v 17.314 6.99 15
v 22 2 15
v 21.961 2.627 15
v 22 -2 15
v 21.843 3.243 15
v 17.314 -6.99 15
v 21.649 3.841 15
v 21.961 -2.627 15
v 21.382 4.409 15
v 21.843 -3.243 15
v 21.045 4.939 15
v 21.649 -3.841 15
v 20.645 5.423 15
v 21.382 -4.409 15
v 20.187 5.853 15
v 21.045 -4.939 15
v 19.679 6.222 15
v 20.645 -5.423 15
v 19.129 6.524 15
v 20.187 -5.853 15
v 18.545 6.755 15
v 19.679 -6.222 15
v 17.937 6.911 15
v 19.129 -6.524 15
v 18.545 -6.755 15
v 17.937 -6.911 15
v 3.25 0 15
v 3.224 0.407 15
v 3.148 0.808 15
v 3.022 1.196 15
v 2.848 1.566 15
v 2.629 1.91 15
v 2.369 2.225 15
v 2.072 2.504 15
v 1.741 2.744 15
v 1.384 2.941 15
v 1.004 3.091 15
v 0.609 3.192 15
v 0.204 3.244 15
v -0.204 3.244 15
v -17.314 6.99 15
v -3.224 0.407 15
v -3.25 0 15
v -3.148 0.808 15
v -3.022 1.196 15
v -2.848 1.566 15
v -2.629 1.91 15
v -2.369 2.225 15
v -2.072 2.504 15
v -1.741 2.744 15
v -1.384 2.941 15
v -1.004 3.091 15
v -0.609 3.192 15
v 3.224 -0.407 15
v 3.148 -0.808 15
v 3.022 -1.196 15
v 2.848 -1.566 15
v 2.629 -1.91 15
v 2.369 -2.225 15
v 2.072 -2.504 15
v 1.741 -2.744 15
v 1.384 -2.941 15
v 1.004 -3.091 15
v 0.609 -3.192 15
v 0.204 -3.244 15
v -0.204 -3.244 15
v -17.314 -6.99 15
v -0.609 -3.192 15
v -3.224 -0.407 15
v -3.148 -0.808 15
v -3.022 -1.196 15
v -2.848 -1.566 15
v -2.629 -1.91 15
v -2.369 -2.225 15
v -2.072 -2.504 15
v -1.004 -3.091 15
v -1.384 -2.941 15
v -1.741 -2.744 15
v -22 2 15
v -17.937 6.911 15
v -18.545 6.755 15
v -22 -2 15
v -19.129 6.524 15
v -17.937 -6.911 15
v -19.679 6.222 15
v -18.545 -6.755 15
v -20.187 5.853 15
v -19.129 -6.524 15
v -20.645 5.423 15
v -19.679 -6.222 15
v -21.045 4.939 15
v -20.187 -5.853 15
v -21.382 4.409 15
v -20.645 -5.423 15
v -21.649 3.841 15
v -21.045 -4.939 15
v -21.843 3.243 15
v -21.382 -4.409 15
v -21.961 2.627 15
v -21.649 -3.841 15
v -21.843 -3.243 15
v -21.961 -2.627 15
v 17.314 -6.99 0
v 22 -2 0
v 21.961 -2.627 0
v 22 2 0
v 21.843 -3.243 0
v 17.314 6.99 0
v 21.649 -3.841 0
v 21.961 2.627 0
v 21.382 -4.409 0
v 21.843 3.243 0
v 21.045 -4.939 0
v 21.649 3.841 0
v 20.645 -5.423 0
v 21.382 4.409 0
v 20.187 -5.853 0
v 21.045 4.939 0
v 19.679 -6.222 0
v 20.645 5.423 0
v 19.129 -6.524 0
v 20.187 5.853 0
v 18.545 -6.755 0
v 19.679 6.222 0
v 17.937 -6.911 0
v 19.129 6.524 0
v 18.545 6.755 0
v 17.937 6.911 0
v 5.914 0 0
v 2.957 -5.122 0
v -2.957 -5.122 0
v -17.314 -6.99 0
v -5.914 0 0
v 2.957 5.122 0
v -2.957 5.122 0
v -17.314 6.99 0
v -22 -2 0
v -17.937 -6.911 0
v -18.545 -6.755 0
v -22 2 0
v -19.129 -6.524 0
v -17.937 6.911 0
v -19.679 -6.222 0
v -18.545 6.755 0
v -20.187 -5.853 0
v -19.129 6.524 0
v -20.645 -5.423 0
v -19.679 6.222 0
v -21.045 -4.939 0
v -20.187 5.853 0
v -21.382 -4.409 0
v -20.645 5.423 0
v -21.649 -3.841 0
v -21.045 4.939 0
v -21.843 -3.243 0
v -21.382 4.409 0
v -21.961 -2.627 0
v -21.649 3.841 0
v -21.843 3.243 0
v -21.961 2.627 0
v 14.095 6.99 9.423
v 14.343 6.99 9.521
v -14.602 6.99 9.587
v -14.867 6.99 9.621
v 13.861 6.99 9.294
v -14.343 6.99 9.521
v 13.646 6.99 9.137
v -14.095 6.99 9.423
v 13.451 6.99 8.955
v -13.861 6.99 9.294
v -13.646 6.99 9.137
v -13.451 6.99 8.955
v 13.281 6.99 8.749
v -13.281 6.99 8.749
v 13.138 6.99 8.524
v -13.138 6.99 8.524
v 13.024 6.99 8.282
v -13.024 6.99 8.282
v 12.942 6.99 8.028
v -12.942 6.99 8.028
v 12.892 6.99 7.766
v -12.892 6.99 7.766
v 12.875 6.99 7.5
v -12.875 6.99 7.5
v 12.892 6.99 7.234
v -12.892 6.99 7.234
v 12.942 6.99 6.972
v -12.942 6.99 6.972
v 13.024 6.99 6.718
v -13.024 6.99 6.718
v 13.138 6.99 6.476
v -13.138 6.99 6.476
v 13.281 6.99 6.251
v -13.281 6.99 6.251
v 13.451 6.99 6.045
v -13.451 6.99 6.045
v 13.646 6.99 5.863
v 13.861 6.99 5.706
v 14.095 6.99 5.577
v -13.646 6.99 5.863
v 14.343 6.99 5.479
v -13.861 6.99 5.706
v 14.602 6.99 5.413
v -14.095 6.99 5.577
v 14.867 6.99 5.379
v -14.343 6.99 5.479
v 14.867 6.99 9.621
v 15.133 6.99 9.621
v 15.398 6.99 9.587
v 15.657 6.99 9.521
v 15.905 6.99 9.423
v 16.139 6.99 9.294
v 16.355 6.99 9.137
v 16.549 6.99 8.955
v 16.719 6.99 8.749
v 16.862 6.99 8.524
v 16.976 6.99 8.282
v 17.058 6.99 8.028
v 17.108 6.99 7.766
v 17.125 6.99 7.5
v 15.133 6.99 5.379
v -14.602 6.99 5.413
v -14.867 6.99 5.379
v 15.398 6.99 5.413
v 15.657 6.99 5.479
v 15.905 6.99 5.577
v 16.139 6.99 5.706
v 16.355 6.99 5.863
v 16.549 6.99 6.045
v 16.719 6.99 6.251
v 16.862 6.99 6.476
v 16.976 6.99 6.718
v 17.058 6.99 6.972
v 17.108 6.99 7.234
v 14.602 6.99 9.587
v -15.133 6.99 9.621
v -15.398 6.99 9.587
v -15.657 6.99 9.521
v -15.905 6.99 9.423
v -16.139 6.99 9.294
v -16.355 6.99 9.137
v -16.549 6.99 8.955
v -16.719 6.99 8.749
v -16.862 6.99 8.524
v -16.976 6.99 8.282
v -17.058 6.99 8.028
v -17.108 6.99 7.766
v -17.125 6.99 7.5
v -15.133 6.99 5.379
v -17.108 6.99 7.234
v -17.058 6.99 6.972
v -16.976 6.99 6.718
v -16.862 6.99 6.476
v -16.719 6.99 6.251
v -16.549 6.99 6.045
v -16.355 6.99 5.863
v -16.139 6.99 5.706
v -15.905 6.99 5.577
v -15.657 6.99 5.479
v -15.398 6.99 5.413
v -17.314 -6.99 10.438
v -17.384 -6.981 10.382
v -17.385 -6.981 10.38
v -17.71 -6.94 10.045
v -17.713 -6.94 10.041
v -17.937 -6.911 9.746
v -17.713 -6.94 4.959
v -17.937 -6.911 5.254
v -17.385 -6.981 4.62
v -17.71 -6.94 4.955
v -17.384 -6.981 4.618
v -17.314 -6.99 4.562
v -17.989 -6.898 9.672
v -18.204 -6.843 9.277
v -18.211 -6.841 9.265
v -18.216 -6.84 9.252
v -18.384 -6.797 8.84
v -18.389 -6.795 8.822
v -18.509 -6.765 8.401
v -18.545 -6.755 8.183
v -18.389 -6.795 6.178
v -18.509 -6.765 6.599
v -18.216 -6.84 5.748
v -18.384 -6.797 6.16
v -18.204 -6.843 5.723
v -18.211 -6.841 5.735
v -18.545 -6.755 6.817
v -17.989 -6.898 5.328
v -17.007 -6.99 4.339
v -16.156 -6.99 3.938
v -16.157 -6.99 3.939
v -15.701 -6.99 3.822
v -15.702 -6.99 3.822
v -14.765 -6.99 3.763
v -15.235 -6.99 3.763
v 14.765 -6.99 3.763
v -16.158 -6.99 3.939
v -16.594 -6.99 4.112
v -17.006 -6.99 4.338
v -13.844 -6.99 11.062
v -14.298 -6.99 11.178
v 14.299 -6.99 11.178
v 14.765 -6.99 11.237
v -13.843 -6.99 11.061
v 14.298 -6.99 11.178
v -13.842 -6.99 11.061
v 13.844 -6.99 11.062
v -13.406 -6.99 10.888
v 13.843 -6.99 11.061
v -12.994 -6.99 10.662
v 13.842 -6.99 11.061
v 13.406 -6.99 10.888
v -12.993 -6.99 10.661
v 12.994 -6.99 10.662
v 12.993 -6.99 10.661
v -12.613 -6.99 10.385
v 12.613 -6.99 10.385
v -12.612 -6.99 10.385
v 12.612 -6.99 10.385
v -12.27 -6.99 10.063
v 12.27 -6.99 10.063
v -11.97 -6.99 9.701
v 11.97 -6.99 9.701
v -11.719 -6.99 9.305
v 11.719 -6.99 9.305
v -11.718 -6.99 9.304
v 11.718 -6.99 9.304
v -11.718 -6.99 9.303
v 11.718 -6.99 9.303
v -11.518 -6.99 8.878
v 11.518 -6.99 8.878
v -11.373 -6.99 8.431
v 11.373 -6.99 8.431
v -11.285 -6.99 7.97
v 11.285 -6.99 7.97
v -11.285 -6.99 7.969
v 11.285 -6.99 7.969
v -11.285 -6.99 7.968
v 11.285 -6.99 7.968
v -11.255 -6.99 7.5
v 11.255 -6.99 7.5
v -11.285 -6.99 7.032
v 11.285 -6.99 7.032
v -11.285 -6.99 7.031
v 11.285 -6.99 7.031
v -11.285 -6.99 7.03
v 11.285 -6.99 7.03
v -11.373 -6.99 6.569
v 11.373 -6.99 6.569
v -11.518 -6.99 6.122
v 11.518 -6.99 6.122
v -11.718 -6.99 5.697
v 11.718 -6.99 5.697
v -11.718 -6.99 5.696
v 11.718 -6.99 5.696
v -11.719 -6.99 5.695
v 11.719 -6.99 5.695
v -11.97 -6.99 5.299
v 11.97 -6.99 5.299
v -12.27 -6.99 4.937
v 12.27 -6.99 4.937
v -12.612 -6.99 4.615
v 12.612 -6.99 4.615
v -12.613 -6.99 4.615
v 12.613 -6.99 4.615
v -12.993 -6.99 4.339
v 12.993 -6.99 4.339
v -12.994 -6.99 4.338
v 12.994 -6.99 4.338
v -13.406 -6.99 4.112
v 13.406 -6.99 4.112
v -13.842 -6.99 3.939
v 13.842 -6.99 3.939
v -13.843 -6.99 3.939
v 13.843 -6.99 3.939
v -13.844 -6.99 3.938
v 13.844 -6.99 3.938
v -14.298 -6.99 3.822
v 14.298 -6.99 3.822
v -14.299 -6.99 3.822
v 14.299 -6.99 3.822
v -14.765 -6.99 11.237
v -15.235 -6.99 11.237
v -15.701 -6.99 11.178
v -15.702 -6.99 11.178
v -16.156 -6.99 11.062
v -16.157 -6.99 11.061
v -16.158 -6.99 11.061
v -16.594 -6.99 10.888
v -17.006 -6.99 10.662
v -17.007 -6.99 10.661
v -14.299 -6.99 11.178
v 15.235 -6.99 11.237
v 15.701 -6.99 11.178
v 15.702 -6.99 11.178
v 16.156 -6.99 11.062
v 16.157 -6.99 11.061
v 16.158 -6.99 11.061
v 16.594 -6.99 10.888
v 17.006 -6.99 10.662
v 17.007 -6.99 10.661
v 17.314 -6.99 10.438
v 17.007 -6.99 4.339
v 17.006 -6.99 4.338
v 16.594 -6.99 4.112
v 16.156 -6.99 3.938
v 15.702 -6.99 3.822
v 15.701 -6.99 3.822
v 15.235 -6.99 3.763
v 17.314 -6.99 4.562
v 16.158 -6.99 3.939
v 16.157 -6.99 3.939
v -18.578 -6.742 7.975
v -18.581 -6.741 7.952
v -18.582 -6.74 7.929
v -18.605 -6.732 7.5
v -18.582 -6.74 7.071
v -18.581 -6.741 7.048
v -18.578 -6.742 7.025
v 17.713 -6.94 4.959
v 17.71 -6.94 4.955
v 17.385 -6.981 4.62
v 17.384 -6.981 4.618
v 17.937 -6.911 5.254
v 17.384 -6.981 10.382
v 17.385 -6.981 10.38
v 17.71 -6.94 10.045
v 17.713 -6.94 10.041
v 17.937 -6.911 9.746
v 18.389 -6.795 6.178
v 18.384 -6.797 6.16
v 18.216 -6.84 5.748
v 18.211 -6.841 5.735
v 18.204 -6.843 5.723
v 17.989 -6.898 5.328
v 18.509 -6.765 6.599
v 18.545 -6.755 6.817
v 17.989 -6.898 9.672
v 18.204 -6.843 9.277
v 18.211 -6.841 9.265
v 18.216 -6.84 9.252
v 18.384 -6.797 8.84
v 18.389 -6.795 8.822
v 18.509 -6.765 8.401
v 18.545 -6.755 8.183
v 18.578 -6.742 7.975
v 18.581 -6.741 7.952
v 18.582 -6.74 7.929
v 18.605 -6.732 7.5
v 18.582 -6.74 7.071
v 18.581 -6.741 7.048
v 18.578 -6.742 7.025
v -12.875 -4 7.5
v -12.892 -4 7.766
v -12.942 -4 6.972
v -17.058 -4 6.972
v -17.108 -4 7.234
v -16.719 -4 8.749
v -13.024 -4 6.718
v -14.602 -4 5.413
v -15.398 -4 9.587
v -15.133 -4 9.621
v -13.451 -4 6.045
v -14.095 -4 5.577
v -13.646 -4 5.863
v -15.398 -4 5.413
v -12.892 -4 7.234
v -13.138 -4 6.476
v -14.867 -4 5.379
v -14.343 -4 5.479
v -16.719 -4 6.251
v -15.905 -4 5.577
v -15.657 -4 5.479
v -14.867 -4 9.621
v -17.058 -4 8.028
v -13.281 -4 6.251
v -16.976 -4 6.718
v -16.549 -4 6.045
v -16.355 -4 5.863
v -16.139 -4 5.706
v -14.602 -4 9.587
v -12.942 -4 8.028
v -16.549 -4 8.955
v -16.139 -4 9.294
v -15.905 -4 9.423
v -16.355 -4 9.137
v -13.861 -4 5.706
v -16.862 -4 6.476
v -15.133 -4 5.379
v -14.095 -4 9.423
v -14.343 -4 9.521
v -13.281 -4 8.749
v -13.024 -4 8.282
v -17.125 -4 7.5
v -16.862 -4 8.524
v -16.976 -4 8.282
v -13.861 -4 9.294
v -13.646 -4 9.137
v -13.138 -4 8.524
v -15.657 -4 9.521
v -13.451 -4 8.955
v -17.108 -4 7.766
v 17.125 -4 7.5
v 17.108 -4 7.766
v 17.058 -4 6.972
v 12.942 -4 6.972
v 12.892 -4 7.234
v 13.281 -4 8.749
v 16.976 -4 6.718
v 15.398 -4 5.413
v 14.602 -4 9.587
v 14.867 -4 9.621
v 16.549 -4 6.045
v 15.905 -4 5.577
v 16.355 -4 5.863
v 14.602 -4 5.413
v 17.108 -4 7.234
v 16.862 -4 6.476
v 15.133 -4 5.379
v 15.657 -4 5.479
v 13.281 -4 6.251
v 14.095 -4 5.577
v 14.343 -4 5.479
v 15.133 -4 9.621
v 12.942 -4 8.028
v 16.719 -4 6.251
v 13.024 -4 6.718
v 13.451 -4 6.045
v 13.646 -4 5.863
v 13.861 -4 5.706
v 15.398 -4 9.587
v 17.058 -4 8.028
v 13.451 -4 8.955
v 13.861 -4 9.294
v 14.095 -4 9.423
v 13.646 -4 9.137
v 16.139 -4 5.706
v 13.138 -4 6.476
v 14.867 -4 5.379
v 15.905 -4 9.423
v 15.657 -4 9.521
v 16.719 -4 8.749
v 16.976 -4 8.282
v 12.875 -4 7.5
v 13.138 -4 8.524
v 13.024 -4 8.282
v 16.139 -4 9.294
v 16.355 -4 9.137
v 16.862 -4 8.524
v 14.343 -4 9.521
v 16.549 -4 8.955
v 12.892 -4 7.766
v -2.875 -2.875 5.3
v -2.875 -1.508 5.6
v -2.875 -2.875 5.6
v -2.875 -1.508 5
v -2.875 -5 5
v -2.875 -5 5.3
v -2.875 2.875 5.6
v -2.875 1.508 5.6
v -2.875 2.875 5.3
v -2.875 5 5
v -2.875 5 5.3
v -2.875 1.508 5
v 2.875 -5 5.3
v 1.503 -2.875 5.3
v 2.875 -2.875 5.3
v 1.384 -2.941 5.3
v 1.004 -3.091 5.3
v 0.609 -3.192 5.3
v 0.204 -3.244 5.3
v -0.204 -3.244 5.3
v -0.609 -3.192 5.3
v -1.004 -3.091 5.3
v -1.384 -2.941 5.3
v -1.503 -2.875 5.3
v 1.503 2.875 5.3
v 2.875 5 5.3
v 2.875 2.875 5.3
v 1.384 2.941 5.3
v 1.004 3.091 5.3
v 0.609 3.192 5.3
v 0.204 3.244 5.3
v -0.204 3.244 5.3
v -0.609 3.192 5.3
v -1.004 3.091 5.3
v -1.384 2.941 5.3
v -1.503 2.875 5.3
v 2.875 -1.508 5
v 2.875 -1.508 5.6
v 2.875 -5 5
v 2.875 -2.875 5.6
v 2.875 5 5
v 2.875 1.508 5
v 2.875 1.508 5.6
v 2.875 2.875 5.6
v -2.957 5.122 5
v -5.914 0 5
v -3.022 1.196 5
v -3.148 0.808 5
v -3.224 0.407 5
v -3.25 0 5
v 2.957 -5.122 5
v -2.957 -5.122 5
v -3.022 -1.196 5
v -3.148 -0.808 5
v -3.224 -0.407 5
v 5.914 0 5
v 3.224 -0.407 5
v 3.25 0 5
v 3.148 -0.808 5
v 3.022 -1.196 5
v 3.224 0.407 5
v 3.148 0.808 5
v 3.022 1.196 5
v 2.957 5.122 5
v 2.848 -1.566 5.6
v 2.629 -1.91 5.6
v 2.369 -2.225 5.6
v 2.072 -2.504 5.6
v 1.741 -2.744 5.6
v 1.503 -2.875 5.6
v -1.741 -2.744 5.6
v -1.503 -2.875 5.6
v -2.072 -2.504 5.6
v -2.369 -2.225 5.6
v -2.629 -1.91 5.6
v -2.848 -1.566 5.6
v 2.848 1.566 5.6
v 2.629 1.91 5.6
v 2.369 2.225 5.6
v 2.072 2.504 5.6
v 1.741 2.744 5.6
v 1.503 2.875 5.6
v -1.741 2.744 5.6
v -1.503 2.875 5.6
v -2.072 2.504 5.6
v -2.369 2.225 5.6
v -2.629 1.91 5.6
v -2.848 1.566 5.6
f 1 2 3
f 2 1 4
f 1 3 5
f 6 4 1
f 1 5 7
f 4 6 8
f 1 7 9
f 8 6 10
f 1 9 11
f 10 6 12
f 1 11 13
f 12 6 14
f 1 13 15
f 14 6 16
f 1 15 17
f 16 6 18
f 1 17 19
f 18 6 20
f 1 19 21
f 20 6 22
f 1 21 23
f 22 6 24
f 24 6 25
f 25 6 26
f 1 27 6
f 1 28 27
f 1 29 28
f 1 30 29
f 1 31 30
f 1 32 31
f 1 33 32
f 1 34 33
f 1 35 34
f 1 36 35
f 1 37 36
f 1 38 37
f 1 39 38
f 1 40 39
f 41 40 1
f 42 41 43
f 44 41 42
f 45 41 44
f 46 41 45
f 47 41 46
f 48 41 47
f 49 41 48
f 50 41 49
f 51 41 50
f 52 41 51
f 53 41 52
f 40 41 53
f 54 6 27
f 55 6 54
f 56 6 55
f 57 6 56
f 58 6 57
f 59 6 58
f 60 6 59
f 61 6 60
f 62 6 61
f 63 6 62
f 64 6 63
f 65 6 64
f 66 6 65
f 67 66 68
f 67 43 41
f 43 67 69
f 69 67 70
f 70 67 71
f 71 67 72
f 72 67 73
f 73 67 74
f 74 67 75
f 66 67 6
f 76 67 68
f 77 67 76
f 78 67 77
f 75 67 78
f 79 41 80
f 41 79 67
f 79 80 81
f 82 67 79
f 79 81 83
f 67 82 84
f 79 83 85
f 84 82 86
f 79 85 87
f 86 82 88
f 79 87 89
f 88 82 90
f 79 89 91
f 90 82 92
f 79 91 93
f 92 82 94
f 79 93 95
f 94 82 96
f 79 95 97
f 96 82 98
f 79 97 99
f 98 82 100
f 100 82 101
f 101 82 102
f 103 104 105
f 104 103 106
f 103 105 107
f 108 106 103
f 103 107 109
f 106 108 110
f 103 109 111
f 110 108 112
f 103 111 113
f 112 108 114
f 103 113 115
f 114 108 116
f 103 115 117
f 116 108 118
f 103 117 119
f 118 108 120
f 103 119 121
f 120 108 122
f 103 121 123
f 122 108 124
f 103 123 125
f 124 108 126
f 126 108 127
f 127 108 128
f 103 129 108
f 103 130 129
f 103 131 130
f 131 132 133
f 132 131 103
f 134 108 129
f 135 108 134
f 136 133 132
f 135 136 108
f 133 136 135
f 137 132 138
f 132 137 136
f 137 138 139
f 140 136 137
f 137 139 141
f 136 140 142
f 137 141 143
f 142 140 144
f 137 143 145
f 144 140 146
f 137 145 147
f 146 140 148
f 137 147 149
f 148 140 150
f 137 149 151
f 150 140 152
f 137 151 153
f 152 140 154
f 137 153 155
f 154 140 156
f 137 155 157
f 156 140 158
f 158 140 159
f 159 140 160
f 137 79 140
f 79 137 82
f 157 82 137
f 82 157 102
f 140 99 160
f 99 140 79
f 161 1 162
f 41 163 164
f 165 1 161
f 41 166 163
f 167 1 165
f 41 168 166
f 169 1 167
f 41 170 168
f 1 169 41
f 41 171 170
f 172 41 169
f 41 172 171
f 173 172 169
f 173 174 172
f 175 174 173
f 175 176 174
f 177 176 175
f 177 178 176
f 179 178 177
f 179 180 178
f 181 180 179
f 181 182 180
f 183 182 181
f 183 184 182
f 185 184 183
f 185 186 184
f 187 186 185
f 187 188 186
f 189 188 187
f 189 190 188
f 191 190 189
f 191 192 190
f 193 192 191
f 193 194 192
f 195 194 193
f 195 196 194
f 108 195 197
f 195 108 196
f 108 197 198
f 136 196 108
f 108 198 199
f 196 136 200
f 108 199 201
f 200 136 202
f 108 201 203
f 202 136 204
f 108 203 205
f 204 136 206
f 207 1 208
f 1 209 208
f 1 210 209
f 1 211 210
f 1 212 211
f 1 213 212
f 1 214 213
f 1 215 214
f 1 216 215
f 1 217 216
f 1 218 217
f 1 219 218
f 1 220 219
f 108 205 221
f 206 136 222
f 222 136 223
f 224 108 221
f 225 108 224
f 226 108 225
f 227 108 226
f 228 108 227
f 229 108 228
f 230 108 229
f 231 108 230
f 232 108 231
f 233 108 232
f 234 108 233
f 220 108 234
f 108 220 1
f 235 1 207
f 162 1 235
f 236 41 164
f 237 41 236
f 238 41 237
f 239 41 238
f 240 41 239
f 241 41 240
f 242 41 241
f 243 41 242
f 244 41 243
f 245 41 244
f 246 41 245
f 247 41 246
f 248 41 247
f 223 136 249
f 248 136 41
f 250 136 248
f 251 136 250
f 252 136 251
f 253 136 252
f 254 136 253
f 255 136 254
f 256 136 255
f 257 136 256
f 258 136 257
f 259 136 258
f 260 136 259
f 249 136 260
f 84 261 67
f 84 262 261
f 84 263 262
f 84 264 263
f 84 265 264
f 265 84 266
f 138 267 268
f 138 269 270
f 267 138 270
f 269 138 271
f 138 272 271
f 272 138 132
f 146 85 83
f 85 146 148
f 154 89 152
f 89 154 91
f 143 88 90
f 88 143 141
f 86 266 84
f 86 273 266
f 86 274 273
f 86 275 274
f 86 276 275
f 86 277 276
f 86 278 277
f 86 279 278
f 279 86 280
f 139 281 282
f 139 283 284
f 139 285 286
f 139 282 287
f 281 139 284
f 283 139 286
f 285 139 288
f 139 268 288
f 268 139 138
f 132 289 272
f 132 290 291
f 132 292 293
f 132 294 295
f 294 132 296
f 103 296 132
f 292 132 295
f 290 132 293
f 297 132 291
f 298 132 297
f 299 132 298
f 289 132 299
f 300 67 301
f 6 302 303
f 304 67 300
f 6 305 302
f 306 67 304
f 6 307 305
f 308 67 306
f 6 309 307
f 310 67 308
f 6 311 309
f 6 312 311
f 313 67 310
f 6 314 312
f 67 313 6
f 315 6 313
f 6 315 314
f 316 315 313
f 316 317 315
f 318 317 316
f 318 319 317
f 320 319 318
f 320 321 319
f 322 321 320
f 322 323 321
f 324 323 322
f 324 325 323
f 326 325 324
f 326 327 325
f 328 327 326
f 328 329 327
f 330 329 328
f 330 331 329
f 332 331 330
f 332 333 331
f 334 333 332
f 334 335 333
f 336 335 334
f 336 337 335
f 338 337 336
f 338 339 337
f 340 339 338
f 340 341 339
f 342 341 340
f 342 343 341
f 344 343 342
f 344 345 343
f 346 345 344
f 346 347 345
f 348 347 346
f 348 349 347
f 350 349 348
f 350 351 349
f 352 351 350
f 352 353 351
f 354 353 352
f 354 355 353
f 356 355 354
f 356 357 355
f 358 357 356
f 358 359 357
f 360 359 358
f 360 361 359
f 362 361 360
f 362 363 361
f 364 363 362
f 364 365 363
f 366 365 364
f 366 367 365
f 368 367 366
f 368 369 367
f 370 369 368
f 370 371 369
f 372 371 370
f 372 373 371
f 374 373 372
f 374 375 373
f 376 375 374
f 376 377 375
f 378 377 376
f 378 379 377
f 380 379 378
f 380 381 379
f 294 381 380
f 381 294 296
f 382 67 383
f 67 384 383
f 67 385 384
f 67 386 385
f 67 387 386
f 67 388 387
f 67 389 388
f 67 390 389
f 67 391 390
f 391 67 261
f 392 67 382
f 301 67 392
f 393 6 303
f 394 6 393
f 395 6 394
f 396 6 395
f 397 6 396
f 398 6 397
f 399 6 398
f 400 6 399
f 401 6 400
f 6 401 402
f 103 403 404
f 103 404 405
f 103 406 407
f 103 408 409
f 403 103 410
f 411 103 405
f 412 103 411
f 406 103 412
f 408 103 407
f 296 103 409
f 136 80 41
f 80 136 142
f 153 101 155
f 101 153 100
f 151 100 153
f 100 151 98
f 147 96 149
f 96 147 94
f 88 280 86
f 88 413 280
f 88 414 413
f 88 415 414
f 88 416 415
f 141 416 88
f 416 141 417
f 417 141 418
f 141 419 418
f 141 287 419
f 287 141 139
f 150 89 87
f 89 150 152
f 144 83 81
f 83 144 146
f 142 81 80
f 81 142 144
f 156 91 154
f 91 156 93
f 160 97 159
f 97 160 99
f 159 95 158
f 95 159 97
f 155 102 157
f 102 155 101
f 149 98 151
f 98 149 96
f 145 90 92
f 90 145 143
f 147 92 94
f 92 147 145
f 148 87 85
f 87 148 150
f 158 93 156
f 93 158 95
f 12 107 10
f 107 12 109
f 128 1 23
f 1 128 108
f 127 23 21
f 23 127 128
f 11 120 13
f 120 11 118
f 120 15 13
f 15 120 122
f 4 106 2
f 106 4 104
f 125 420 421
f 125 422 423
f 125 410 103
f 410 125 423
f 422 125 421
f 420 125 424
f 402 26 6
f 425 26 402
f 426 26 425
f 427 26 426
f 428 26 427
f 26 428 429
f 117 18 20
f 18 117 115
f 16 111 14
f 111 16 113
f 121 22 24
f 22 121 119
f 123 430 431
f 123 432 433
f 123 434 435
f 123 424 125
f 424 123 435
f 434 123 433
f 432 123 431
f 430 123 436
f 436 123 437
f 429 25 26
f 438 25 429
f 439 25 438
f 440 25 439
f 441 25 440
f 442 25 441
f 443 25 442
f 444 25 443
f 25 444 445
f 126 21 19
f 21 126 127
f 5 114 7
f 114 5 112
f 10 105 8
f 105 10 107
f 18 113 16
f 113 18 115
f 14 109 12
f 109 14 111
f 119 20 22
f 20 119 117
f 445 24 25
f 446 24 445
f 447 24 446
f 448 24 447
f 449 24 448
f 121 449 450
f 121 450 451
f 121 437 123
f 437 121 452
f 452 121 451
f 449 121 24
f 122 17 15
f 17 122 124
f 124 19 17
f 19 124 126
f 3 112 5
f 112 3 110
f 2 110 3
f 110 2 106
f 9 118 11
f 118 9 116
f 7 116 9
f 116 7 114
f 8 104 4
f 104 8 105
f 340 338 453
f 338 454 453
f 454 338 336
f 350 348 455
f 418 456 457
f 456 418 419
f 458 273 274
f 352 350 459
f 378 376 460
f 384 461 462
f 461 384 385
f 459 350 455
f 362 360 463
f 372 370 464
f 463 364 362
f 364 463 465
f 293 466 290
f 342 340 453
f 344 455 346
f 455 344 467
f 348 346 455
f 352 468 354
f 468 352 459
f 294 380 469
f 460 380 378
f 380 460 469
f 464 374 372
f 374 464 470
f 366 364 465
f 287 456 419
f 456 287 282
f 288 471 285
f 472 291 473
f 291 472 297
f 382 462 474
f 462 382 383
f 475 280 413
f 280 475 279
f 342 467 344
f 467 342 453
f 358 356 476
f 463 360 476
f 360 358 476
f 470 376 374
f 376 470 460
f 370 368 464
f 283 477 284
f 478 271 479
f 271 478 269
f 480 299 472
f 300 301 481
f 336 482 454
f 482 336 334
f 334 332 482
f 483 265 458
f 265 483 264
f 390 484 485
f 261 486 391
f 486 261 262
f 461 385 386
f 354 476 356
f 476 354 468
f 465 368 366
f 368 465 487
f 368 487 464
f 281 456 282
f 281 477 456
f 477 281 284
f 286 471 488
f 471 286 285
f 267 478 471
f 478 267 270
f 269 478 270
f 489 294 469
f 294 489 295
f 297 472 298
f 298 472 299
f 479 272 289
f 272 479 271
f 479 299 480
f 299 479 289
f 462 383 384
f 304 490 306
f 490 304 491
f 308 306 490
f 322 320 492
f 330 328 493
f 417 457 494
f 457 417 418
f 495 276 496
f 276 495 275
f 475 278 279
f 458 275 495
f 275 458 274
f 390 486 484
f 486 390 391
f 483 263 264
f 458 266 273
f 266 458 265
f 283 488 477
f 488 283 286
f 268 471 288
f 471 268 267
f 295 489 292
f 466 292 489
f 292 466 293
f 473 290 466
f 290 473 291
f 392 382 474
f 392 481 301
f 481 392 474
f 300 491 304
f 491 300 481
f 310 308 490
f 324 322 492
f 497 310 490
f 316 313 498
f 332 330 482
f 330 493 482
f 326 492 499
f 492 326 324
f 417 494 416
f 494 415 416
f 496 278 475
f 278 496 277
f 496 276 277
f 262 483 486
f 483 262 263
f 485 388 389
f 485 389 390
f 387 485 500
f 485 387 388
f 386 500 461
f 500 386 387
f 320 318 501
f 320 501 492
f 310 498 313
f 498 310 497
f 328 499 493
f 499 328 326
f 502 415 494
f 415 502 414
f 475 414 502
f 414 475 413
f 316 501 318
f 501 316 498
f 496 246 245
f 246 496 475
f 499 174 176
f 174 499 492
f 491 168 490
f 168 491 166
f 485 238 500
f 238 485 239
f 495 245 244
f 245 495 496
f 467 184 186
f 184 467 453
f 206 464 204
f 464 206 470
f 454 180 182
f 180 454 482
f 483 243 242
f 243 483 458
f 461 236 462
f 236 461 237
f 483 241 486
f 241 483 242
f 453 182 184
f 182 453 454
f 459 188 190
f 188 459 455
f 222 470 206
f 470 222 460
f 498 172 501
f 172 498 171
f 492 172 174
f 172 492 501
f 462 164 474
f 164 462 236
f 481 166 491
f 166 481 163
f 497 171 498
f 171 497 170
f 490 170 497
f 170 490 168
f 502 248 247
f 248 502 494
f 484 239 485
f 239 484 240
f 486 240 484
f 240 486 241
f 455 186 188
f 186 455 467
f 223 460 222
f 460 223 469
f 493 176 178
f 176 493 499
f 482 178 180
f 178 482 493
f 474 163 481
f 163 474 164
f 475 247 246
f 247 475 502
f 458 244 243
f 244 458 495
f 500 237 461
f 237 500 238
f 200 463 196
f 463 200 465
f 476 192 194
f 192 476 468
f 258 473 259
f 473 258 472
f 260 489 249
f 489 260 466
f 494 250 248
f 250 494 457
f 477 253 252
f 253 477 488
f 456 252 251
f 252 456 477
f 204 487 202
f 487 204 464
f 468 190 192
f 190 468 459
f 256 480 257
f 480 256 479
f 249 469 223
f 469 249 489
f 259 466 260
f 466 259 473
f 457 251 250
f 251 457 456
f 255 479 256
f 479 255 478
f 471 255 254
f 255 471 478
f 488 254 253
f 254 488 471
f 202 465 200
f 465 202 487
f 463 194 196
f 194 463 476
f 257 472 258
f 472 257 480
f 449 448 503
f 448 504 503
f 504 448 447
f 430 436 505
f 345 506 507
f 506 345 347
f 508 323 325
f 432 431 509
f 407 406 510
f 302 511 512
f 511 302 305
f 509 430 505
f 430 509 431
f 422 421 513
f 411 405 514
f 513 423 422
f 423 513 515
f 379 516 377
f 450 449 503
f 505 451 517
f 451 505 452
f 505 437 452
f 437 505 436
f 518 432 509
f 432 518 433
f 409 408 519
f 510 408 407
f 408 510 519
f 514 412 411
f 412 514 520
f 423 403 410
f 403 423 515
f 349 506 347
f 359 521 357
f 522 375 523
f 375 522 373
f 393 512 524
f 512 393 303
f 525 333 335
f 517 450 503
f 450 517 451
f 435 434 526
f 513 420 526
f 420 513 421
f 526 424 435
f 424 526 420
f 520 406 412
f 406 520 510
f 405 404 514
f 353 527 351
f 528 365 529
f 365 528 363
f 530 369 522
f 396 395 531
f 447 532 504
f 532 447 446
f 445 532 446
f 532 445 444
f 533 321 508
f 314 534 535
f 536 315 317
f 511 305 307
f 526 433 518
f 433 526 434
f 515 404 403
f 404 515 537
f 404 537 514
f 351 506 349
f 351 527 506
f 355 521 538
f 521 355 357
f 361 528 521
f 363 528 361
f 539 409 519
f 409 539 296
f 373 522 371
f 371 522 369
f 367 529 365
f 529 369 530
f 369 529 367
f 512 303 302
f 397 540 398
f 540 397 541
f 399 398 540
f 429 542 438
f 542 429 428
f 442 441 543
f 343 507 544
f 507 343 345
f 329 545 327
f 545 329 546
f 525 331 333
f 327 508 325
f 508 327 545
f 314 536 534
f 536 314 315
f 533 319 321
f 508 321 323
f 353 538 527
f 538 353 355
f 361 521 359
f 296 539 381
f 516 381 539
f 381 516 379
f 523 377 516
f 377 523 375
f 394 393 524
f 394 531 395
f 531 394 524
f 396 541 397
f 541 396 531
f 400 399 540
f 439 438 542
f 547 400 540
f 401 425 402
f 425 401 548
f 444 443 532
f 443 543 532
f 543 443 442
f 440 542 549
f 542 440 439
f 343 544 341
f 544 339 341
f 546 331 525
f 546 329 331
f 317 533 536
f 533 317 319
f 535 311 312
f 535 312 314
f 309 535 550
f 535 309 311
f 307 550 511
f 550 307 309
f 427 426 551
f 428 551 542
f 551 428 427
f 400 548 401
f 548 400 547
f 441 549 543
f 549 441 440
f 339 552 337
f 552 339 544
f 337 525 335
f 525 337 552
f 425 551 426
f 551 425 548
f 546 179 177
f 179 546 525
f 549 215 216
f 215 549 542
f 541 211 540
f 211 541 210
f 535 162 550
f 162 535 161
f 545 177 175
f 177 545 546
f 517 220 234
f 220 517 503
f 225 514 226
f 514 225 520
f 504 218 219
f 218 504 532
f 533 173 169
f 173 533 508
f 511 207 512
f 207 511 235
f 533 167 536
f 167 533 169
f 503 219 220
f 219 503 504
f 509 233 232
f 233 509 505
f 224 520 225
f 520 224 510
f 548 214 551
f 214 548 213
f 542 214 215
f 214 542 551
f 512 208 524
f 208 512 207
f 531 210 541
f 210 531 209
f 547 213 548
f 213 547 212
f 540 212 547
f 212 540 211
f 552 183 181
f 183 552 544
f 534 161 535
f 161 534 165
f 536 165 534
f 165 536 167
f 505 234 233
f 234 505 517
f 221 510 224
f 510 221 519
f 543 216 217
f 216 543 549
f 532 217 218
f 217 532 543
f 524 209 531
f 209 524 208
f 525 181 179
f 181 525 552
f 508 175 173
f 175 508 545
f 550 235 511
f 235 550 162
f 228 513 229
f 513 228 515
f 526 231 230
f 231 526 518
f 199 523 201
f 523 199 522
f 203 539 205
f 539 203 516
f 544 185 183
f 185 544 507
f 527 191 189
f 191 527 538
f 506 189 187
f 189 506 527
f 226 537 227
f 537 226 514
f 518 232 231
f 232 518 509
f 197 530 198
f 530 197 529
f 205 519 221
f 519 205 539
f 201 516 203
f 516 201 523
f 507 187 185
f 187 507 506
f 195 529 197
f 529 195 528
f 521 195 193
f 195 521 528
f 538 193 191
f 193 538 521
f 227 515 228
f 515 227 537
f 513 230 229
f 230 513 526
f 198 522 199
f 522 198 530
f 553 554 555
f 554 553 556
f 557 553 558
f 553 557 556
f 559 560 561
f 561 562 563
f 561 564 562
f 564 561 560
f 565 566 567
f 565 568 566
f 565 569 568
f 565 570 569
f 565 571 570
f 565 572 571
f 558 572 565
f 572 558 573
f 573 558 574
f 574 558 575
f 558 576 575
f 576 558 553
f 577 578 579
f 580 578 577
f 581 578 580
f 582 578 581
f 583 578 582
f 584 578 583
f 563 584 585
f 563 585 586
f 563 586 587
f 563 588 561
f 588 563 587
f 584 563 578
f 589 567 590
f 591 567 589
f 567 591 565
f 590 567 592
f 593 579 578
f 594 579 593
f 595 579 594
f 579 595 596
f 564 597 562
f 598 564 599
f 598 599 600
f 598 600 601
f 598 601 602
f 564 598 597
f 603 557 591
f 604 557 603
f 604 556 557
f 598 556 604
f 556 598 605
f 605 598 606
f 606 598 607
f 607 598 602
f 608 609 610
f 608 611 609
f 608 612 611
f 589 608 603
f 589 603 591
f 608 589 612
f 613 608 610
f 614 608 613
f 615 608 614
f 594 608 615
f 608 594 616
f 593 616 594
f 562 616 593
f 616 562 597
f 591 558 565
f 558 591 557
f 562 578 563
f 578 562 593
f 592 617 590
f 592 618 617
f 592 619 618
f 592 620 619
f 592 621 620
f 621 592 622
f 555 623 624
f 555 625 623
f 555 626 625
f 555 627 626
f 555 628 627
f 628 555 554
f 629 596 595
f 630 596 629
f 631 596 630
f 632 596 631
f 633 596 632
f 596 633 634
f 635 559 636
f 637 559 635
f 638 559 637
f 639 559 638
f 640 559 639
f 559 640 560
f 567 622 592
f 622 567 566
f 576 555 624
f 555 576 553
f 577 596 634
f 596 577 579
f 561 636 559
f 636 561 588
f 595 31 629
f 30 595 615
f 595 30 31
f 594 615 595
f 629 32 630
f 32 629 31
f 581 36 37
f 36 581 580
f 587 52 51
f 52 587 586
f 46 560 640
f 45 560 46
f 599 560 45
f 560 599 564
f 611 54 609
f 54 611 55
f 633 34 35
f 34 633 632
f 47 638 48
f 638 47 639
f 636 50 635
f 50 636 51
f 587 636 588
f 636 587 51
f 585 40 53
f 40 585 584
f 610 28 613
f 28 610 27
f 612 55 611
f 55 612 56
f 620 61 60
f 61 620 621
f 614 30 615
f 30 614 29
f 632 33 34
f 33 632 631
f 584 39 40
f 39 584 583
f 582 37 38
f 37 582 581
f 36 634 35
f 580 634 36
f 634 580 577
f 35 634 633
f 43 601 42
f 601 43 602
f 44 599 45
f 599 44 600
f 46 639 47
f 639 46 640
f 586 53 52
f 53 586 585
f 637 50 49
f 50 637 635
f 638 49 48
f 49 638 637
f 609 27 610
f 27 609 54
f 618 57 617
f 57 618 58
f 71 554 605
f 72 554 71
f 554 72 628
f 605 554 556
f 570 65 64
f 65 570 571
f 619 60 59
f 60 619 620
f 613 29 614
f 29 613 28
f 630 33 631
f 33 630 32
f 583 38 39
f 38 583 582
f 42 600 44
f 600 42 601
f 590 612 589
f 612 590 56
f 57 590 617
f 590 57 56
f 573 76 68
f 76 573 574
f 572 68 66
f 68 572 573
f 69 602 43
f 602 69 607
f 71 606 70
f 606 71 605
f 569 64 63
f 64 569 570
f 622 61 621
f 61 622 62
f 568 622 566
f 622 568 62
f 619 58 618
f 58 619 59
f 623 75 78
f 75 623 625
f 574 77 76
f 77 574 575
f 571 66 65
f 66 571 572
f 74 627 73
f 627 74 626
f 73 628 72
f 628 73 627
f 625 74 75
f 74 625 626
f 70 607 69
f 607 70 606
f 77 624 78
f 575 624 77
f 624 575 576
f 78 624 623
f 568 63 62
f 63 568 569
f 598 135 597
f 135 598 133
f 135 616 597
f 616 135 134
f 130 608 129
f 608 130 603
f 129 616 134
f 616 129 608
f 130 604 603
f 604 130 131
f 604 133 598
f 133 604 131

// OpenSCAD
$fn = 50;


difference() {
	union() {
		cylinder(h = 15, r = 7.0000000000);
		translate(v = [-7.5000000000, 0.0000000000, 0]) {
			hull() {
				translate(v = [-9.5000000000, 2.0000000000, 0]) {
					cylinder(h = 15, r = 5);
				}
				translate(v = [9.5000000000, 2.0000000000, 0]) {
					cylinder(h = 15, r = 5);
				}
				translate(v = [-9.5000000000, -2.0000000000, 0]) {
					cylinder(h = 15, r = 5);
				}
				translate(v = [9.5000000000, -2.0000000000, 0]) {
					cylinder(h = 15, r = 5);
				}
			}
		}
		translate(v = [7.5000000000, 0.0000000000, 0]) {
			hull() {
				translate(v = [-9.5000000000, 2.0000000000, 0]) {
					cylinder(h = 15, r = 5);
				}
				translate(v = [9.5000000000, 2.0000000000, 0]) {
					cylinder(h = 15, r = 5);
				}
				translate(v = [-9.5000000000, -2.0000000000, 0]) {
					cylinder(h = 15, r = 5);
				}
				translate(v = [9.5000000000, -2.0000000000, 0]) {
					cylinder(h = 15, r = 5);
				}
			}
		}
	}
	union() {
		translate(v = [-15.0000000000, -7.0000000000, 7.5000000000]) {
			rotate(a = [90, 0, 0]) {
				difference() {
					union() {
						#translate(v = [0, 0, -14.0000000000]) {
							cylinder(h = 14, r = 2.0000000000);
						}
						#translate(v = [0, 0, -3]) {
							cylinder(h = 3, r1 = 2.1250000000, r2 = 3.7500000000);
						}
						#translate(v = [0, 0, -14.0000000000]) {
							cylinder(h = 14, r = 2.1250000000);
						}
						#translate(v = [0, 0, -14.0000000000]) {
							cylinder(h = 14, r = 2.0000000000);
						}
					}
					union();
				}
			}
		}
		translate(v = [15.0000000000, -7.0000000000, 7.5000000000]) {
			rotate(a = [90, 0, 0]) {
				difference() {
					union() {
						#translate(v = [0, 0, -14.0000000000]) {
							cylinder(h = 14, r = 2.0000000000);
						}
						#translate(v = [0, 0, -3]) {
							cylinder(h = 3, r1 = 2.1250000000, r2 = 3.7500000000);
						}
						#translate(v = [0, 0, -14.0000000000]) {
							cylinder(h = 14, r = 2.1250000000);
						}
						#translate(v = [0, 0, -14.0000000000]) {
							cylinder(h = 14, r = 2.0000000000);
						}
					}
					union();
				}
			}
		}
		translate(v = [0.0000000000, 0.0000000000, 0]) {
			rotate(a = [0, 0, 0]) {
				difference() {
					union() {
						#translate(v = [-2.8750000000, -5.0000000000, -0.3000000000]) {
							cube(size = [5.7500000000, 10, 0.3000000000]);
						}
						#translate(v = [-2.8750000000, -2.8750000000, -0.6000000000]) {
							cube(size = [5.7500000000, 5.7500000000, 0.3000000000]);
						}
						#translate(v = [-2.8750000000, -5.0000000000, 5]) {
							cube(size = [5.7500000000, 10, 0.3000000000]);
						}
						#translate(v = [-2.8750000000, -2.8750000000, 5.3000000000]) {
							cube(size = [5.7500000000, 5.7500000000, 0.3000000000]);
						}
						#translate(v = [0, 0, -100.0000000000]) {
							cylinder(h = 200, r = 3.2500000000);
						}
						#linear_extrude(height = 5) {
							polygon(points = [[5.9142500000, 0.0000000000], [2.9571250000, 5.1218907443], [-2.9571250000, 5.1218907443], [-5.9142500000, 0.0000000000], [-2.9571250000, -5.1218907443], [2.9571250000, -5.1218907443]]);
						}
						#translate(v = [-2.8750000000, -5.0000000000, -0.3000000000]) {
							cube(size = [5.7500000000, 10, 0.3000000000]);
						}
						#translate(v = [-2.8750000000, -2.8750000000, -0.6000000000]) {
							cube(size = [5.7500000000, 5.7500000000, 0.3000000000]);
						}
						#translate(v = [-2.8750000000, -5.0000000000, 5]) {
							cube(size = [5.7500000000, 10, 0.3000000000]);
						}
						#translate(v = [-2.8750000000, -2.8750000000, 5.3000000000]) {
							cube(size = [5.7500000000, 5.7500000000, 0.3000000000]);
						}
						#translate(v = [0, 0, -100.0000000000]) {
							cylinder(h = 200, r = 3.2500000000);
						}
						#translate(v = [-2.8750000000, -5.0000000000, -0.3000000000]) {
							cube(size = [5.7500000000, 10, 0.3000000000]);
						}
						#translate(v = [-2.8750000000, -2.8750000000, -0.6000000000]) {
							cube(size = [5.7500000000, 5.7500000000, 0.3000000000]);
						}
						#translate(v = [-2.8750000000, -5.0000000000, 5]) {
							cube(size = [5.7500000000, 10, 0.3000000000]);
						}
						#translate(v = [-2.8750000000, -2.8750000000, 5.3000000000]) {
							cube(size = [5.7500000000, 5.7500000000, 0.3000000000]);
						}
						#translate(v = [0, 0, -100.0000000000]) {
							cylinder(h = 200, r = 3.2500000000);
						}
					}
					union();
				}
			}
		}
		translate(v = [0, 0, -100]) {
			cylinder(h = 200, r = 3.2500000000);
		}
		translate(v = [0, 0, -100]) {
			cylinder(h = 200, r = 1.8000000000);
		}
	}
}
